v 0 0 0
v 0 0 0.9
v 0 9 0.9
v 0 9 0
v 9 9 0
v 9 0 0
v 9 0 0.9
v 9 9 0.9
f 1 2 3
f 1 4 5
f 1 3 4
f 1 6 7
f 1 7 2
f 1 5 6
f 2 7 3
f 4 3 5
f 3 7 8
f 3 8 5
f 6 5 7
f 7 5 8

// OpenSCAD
/* Warning, this is a very basic generator with a lot of approximation 
input data : [VTLA, 8SX, 9x9x0.9mm, 124, , A, C04-00193A]
generated by com.zoubworld.electronics.cad.model3d.Basic
Date : Sun Feb 15 10:50:48 CET 2026
*/

//body
color("black")
translate([0,0,0])
cube([9.0,9.0,0.9], center=false);
